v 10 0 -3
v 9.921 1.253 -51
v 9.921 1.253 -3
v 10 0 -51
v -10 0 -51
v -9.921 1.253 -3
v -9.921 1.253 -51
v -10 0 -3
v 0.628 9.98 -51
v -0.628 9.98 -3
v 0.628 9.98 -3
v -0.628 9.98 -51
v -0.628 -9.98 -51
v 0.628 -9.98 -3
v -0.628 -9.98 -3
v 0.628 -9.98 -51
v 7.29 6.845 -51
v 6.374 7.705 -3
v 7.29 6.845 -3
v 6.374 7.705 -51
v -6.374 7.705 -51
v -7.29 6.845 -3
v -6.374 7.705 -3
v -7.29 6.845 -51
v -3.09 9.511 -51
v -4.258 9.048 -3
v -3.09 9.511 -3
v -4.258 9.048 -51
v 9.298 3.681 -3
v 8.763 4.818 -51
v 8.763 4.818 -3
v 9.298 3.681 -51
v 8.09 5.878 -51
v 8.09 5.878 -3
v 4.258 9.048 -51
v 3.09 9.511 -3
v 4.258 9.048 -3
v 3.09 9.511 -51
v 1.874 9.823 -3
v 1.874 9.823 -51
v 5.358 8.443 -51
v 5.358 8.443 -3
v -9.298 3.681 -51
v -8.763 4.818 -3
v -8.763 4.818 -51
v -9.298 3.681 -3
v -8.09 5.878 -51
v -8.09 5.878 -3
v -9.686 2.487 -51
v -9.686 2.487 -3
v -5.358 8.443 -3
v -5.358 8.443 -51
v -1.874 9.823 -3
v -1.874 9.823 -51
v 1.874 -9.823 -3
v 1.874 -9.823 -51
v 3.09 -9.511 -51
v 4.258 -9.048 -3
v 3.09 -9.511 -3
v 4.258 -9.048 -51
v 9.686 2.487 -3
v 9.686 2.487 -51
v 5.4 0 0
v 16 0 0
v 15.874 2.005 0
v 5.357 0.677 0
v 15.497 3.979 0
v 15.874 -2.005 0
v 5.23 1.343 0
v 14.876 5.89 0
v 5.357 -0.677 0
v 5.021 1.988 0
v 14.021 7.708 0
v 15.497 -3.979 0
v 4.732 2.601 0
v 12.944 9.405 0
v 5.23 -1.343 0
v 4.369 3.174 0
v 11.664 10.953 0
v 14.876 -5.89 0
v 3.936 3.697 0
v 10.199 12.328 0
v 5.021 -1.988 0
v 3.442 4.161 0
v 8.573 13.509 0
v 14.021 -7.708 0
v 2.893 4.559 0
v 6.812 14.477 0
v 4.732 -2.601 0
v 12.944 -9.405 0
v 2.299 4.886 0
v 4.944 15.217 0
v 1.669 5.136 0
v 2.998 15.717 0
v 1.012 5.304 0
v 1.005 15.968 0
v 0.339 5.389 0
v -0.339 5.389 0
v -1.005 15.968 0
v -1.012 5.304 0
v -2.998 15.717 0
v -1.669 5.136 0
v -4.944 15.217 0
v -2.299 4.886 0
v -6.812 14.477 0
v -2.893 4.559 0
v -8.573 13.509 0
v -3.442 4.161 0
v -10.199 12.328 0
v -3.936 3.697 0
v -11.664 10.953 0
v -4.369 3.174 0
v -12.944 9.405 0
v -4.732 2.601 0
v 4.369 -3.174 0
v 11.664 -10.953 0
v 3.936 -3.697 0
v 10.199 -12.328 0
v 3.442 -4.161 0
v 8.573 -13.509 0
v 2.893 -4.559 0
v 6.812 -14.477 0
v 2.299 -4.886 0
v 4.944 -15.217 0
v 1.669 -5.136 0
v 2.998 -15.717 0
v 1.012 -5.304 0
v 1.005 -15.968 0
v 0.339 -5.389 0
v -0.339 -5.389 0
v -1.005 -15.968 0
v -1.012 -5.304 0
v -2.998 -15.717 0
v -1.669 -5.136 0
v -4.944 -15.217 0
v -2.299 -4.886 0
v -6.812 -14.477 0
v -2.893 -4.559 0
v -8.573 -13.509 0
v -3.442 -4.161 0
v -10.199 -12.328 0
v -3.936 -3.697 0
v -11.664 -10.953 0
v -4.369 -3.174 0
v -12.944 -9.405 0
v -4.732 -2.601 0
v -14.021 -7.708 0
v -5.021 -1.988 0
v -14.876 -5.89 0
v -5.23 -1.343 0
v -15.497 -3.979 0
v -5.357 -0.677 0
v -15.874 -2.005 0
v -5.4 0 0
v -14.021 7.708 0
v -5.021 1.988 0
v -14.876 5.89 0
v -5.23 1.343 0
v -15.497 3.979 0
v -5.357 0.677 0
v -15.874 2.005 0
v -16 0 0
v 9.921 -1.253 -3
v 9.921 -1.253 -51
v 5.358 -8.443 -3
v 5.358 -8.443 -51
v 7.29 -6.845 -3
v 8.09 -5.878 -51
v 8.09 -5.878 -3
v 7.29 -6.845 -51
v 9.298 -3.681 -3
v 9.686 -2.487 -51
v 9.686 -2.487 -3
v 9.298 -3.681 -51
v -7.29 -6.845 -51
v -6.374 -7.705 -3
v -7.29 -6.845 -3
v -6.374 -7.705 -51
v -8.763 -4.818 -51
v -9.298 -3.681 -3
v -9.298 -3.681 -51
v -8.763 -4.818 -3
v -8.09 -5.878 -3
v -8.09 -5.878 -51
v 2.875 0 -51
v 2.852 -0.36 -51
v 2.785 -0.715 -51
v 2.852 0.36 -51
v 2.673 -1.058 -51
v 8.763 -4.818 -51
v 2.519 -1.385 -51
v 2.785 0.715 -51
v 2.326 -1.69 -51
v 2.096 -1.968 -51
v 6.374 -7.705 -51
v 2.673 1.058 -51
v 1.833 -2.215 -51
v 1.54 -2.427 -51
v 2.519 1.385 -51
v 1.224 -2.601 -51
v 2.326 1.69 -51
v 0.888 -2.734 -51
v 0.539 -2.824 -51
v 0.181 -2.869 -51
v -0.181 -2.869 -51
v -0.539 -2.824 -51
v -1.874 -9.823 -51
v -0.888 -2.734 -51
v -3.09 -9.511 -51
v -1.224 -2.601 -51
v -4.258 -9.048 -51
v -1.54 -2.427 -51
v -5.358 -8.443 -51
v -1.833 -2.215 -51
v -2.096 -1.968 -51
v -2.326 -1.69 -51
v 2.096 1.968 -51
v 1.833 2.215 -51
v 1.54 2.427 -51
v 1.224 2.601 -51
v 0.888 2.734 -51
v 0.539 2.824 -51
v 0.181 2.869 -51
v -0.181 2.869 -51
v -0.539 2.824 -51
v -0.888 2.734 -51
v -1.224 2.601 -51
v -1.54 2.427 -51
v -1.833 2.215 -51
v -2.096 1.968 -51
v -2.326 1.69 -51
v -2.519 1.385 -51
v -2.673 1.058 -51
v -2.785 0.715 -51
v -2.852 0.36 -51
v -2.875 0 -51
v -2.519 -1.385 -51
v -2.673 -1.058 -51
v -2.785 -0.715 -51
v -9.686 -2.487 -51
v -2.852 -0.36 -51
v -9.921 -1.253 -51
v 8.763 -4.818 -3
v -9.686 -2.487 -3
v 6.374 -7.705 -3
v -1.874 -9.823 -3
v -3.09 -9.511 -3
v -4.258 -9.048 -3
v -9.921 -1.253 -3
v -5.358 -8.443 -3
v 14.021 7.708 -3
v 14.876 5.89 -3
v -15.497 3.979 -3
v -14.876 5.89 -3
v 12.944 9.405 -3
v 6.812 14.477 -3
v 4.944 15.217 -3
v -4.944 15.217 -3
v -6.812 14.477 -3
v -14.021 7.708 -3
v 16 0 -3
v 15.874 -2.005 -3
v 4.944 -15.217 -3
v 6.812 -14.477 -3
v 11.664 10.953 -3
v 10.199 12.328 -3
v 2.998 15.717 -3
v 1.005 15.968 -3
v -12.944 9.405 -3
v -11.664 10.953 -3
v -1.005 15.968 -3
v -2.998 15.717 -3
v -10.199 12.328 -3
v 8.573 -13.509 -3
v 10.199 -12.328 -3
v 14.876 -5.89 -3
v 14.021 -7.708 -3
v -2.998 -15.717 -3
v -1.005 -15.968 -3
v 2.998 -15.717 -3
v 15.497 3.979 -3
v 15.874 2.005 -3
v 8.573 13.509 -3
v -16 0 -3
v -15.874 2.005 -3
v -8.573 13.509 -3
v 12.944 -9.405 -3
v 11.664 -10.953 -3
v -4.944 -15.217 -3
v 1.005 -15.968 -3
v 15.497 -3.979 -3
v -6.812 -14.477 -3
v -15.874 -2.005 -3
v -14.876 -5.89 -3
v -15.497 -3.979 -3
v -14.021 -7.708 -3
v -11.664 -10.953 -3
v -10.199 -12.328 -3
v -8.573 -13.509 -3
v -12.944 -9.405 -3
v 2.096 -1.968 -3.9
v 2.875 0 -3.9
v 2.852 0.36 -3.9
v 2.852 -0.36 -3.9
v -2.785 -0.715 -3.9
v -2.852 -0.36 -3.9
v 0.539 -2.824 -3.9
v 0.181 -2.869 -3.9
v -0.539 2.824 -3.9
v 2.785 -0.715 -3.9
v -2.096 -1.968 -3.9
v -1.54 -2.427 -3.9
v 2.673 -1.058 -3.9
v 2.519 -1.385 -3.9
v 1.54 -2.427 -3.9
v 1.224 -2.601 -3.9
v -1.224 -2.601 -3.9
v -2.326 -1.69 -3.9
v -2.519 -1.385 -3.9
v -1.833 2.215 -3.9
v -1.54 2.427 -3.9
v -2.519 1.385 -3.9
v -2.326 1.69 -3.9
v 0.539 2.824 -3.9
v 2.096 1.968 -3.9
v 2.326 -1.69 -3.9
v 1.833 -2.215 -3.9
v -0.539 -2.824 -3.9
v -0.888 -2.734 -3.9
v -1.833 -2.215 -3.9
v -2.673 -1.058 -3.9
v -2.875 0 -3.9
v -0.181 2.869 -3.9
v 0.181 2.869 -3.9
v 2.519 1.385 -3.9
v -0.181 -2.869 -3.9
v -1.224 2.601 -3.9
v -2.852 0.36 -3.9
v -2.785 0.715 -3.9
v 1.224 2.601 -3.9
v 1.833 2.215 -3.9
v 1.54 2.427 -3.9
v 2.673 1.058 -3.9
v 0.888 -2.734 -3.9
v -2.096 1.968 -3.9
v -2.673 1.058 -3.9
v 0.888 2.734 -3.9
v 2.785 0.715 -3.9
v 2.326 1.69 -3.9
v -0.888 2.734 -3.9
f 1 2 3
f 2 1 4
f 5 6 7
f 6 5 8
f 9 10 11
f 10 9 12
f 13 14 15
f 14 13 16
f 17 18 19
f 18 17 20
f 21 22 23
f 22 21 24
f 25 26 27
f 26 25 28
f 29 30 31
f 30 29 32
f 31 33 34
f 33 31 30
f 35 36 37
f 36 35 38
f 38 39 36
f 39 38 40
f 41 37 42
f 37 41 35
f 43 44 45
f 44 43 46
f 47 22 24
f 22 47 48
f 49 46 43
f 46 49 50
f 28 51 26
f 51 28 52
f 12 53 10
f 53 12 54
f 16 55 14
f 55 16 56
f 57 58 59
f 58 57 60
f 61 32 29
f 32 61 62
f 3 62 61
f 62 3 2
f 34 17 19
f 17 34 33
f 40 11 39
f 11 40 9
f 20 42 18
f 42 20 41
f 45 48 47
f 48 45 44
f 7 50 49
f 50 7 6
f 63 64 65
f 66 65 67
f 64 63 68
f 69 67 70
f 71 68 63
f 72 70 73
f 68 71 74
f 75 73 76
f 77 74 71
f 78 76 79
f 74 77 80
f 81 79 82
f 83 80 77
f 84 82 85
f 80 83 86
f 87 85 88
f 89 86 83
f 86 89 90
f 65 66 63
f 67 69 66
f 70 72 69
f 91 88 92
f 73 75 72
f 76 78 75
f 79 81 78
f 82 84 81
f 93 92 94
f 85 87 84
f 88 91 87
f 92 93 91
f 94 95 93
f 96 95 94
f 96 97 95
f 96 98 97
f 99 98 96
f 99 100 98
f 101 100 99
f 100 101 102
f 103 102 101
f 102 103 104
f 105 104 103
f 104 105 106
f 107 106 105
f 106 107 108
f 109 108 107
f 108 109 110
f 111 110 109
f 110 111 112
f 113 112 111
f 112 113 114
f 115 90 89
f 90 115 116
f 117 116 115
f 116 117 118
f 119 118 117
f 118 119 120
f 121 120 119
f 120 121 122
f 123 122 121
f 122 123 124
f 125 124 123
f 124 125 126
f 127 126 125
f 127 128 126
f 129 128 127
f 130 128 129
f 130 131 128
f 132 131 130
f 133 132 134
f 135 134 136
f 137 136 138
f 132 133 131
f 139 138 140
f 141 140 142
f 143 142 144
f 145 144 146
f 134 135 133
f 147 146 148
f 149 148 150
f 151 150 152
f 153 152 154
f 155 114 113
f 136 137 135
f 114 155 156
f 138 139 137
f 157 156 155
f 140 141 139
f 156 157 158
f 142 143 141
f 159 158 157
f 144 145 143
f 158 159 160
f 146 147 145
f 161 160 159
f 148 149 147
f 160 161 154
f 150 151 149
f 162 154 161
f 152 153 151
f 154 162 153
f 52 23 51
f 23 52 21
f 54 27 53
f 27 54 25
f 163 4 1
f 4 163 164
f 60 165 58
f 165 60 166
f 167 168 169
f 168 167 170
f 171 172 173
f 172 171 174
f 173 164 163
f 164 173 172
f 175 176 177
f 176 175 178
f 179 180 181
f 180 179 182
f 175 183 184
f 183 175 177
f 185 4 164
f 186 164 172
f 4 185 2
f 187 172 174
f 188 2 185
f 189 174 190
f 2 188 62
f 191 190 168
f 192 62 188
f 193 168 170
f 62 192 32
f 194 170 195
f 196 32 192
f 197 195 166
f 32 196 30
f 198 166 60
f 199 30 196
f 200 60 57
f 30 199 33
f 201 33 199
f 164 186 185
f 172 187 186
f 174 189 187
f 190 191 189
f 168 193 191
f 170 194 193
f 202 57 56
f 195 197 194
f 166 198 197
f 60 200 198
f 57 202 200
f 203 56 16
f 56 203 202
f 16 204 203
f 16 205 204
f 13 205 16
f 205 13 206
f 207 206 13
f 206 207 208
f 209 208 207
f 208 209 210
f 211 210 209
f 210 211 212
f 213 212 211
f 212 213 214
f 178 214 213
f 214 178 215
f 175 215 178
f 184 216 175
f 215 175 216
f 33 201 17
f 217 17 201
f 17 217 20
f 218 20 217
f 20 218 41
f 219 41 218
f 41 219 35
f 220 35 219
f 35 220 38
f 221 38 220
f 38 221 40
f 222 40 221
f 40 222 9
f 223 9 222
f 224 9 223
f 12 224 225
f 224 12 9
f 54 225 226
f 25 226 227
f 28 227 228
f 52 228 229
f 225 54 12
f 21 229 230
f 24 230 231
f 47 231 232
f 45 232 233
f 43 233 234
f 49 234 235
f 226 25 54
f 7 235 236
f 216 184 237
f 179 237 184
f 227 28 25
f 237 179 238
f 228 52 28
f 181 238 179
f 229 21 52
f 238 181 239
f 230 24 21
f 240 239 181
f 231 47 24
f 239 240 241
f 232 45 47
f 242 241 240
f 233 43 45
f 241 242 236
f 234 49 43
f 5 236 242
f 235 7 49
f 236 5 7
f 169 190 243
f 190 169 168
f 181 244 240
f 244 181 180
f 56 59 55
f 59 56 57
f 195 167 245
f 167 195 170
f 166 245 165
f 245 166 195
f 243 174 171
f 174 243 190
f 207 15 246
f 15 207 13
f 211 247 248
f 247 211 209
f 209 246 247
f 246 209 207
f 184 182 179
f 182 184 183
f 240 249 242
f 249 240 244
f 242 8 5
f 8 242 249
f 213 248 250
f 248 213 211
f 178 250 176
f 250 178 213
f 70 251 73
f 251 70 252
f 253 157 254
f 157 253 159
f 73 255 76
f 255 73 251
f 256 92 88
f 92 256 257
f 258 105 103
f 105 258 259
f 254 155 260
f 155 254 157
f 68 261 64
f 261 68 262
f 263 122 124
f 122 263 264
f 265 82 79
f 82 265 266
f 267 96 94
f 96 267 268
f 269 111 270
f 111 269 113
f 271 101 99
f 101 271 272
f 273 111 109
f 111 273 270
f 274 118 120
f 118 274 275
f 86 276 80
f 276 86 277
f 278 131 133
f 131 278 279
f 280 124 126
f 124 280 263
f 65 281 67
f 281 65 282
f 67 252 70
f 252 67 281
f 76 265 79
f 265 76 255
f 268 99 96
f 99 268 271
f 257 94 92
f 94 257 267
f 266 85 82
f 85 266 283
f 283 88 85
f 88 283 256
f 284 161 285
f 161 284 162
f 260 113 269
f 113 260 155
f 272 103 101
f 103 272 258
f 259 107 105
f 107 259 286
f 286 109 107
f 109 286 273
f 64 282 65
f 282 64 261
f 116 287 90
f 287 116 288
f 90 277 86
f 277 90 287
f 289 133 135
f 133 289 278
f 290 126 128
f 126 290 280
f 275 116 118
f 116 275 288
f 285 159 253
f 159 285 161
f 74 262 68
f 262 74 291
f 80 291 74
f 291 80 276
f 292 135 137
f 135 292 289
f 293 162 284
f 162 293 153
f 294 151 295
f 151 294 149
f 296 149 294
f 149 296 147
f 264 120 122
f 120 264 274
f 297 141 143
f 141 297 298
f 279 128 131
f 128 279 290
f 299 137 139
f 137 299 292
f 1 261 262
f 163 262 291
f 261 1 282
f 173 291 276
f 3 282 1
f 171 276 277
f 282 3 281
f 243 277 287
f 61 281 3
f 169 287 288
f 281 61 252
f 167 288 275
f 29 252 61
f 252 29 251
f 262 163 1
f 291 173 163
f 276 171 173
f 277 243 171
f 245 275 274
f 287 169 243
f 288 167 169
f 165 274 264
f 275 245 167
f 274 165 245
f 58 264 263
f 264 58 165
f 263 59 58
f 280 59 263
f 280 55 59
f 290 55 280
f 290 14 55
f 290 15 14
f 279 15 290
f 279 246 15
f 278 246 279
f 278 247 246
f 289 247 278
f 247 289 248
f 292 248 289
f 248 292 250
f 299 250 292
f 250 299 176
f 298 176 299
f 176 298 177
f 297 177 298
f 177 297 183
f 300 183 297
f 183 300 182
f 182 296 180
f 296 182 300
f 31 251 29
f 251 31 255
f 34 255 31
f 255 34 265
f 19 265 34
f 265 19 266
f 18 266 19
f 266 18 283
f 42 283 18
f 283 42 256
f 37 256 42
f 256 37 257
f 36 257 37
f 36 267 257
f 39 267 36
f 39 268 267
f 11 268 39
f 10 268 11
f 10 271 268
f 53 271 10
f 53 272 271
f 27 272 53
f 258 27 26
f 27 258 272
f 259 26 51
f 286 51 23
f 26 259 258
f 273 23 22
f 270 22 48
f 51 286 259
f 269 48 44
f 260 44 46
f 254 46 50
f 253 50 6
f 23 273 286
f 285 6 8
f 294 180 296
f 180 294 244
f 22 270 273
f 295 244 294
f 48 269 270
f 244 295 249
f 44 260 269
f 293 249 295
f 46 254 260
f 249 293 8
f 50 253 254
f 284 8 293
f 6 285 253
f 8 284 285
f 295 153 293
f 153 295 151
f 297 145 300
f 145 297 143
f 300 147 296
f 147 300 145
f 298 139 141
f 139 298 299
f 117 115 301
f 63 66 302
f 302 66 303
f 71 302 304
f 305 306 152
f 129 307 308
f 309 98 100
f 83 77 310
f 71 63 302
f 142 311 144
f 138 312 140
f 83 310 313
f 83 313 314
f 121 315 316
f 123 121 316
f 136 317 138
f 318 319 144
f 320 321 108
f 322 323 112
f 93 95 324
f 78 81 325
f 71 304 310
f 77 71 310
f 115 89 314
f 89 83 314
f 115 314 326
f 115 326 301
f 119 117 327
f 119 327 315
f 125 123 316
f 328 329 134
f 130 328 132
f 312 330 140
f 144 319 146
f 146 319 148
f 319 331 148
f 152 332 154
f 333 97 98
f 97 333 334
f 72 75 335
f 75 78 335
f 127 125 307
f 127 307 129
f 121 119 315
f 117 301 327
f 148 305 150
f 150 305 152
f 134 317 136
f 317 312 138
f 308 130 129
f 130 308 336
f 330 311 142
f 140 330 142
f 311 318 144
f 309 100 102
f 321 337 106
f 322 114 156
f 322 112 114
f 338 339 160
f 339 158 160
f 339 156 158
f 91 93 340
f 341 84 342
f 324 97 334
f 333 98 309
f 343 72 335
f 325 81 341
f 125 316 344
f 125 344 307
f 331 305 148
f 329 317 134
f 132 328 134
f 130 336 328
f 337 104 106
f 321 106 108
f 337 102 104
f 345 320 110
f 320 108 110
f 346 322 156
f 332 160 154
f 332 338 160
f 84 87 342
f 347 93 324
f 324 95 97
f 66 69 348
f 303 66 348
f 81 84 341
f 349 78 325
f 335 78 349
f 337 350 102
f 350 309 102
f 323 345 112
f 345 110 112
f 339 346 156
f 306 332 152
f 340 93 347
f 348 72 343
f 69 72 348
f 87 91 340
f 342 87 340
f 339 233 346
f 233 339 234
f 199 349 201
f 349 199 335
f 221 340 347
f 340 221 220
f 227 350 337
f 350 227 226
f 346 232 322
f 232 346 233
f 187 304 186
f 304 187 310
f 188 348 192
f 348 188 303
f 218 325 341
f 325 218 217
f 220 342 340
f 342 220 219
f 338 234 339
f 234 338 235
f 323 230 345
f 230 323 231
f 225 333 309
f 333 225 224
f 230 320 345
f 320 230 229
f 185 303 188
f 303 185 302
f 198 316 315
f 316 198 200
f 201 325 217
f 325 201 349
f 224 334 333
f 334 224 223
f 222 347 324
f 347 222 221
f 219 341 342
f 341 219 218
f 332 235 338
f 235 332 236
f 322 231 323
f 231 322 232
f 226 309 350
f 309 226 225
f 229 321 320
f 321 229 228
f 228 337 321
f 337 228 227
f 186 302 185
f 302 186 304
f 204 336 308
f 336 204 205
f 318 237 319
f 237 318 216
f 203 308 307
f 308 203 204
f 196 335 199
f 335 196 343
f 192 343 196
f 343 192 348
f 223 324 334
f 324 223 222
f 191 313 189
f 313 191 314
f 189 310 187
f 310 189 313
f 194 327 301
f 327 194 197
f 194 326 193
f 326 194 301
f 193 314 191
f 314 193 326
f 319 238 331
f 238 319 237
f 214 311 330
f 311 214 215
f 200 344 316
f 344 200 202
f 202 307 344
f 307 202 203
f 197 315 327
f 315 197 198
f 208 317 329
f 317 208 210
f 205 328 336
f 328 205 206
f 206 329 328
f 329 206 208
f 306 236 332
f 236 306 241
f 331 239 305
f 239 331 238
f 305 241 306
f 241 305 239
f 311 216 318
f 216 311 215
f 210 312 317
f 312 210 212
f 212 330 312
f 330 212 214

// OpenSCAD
$fn = 50;


difference() {
	union() {
		translate(v = [0, 0, -51.0000000000]) {
			cylinder(h = 51, r = 10.0000000000);
		}
		translate(v = [0, 0, -3.0000000000]) {
			cylinder(h = 3, r = 16.0000000000);
		}
	}
	union() {
		translate(v = [0, 0, 0]) {
			rotate(a = [0, 0, 0]) {
				difference() {
					union() {
						#translate(v = [0, 0, -51.0000000000]) {
							cylinder(h = 51, r = 2.6000000000);
						}
						#translate(v = [0, 0, -3.9000000000]) {
							cylinder(h = 3.9000000000, r = 10.0000000000, r1 = 2.8750000000, r2 = 5.4000000000);
						}
						#translate(v = [0, 0, -51.0000000000]) {
							cylinder(h = 51, r = 2.8750000000);
						}
						#translate(v = [0, 0, -51.0000000000]) {
							cylinder(h = 51, r = 2.6000000000);
						}
					}
					union();
				}
			}
		}
	}
}
